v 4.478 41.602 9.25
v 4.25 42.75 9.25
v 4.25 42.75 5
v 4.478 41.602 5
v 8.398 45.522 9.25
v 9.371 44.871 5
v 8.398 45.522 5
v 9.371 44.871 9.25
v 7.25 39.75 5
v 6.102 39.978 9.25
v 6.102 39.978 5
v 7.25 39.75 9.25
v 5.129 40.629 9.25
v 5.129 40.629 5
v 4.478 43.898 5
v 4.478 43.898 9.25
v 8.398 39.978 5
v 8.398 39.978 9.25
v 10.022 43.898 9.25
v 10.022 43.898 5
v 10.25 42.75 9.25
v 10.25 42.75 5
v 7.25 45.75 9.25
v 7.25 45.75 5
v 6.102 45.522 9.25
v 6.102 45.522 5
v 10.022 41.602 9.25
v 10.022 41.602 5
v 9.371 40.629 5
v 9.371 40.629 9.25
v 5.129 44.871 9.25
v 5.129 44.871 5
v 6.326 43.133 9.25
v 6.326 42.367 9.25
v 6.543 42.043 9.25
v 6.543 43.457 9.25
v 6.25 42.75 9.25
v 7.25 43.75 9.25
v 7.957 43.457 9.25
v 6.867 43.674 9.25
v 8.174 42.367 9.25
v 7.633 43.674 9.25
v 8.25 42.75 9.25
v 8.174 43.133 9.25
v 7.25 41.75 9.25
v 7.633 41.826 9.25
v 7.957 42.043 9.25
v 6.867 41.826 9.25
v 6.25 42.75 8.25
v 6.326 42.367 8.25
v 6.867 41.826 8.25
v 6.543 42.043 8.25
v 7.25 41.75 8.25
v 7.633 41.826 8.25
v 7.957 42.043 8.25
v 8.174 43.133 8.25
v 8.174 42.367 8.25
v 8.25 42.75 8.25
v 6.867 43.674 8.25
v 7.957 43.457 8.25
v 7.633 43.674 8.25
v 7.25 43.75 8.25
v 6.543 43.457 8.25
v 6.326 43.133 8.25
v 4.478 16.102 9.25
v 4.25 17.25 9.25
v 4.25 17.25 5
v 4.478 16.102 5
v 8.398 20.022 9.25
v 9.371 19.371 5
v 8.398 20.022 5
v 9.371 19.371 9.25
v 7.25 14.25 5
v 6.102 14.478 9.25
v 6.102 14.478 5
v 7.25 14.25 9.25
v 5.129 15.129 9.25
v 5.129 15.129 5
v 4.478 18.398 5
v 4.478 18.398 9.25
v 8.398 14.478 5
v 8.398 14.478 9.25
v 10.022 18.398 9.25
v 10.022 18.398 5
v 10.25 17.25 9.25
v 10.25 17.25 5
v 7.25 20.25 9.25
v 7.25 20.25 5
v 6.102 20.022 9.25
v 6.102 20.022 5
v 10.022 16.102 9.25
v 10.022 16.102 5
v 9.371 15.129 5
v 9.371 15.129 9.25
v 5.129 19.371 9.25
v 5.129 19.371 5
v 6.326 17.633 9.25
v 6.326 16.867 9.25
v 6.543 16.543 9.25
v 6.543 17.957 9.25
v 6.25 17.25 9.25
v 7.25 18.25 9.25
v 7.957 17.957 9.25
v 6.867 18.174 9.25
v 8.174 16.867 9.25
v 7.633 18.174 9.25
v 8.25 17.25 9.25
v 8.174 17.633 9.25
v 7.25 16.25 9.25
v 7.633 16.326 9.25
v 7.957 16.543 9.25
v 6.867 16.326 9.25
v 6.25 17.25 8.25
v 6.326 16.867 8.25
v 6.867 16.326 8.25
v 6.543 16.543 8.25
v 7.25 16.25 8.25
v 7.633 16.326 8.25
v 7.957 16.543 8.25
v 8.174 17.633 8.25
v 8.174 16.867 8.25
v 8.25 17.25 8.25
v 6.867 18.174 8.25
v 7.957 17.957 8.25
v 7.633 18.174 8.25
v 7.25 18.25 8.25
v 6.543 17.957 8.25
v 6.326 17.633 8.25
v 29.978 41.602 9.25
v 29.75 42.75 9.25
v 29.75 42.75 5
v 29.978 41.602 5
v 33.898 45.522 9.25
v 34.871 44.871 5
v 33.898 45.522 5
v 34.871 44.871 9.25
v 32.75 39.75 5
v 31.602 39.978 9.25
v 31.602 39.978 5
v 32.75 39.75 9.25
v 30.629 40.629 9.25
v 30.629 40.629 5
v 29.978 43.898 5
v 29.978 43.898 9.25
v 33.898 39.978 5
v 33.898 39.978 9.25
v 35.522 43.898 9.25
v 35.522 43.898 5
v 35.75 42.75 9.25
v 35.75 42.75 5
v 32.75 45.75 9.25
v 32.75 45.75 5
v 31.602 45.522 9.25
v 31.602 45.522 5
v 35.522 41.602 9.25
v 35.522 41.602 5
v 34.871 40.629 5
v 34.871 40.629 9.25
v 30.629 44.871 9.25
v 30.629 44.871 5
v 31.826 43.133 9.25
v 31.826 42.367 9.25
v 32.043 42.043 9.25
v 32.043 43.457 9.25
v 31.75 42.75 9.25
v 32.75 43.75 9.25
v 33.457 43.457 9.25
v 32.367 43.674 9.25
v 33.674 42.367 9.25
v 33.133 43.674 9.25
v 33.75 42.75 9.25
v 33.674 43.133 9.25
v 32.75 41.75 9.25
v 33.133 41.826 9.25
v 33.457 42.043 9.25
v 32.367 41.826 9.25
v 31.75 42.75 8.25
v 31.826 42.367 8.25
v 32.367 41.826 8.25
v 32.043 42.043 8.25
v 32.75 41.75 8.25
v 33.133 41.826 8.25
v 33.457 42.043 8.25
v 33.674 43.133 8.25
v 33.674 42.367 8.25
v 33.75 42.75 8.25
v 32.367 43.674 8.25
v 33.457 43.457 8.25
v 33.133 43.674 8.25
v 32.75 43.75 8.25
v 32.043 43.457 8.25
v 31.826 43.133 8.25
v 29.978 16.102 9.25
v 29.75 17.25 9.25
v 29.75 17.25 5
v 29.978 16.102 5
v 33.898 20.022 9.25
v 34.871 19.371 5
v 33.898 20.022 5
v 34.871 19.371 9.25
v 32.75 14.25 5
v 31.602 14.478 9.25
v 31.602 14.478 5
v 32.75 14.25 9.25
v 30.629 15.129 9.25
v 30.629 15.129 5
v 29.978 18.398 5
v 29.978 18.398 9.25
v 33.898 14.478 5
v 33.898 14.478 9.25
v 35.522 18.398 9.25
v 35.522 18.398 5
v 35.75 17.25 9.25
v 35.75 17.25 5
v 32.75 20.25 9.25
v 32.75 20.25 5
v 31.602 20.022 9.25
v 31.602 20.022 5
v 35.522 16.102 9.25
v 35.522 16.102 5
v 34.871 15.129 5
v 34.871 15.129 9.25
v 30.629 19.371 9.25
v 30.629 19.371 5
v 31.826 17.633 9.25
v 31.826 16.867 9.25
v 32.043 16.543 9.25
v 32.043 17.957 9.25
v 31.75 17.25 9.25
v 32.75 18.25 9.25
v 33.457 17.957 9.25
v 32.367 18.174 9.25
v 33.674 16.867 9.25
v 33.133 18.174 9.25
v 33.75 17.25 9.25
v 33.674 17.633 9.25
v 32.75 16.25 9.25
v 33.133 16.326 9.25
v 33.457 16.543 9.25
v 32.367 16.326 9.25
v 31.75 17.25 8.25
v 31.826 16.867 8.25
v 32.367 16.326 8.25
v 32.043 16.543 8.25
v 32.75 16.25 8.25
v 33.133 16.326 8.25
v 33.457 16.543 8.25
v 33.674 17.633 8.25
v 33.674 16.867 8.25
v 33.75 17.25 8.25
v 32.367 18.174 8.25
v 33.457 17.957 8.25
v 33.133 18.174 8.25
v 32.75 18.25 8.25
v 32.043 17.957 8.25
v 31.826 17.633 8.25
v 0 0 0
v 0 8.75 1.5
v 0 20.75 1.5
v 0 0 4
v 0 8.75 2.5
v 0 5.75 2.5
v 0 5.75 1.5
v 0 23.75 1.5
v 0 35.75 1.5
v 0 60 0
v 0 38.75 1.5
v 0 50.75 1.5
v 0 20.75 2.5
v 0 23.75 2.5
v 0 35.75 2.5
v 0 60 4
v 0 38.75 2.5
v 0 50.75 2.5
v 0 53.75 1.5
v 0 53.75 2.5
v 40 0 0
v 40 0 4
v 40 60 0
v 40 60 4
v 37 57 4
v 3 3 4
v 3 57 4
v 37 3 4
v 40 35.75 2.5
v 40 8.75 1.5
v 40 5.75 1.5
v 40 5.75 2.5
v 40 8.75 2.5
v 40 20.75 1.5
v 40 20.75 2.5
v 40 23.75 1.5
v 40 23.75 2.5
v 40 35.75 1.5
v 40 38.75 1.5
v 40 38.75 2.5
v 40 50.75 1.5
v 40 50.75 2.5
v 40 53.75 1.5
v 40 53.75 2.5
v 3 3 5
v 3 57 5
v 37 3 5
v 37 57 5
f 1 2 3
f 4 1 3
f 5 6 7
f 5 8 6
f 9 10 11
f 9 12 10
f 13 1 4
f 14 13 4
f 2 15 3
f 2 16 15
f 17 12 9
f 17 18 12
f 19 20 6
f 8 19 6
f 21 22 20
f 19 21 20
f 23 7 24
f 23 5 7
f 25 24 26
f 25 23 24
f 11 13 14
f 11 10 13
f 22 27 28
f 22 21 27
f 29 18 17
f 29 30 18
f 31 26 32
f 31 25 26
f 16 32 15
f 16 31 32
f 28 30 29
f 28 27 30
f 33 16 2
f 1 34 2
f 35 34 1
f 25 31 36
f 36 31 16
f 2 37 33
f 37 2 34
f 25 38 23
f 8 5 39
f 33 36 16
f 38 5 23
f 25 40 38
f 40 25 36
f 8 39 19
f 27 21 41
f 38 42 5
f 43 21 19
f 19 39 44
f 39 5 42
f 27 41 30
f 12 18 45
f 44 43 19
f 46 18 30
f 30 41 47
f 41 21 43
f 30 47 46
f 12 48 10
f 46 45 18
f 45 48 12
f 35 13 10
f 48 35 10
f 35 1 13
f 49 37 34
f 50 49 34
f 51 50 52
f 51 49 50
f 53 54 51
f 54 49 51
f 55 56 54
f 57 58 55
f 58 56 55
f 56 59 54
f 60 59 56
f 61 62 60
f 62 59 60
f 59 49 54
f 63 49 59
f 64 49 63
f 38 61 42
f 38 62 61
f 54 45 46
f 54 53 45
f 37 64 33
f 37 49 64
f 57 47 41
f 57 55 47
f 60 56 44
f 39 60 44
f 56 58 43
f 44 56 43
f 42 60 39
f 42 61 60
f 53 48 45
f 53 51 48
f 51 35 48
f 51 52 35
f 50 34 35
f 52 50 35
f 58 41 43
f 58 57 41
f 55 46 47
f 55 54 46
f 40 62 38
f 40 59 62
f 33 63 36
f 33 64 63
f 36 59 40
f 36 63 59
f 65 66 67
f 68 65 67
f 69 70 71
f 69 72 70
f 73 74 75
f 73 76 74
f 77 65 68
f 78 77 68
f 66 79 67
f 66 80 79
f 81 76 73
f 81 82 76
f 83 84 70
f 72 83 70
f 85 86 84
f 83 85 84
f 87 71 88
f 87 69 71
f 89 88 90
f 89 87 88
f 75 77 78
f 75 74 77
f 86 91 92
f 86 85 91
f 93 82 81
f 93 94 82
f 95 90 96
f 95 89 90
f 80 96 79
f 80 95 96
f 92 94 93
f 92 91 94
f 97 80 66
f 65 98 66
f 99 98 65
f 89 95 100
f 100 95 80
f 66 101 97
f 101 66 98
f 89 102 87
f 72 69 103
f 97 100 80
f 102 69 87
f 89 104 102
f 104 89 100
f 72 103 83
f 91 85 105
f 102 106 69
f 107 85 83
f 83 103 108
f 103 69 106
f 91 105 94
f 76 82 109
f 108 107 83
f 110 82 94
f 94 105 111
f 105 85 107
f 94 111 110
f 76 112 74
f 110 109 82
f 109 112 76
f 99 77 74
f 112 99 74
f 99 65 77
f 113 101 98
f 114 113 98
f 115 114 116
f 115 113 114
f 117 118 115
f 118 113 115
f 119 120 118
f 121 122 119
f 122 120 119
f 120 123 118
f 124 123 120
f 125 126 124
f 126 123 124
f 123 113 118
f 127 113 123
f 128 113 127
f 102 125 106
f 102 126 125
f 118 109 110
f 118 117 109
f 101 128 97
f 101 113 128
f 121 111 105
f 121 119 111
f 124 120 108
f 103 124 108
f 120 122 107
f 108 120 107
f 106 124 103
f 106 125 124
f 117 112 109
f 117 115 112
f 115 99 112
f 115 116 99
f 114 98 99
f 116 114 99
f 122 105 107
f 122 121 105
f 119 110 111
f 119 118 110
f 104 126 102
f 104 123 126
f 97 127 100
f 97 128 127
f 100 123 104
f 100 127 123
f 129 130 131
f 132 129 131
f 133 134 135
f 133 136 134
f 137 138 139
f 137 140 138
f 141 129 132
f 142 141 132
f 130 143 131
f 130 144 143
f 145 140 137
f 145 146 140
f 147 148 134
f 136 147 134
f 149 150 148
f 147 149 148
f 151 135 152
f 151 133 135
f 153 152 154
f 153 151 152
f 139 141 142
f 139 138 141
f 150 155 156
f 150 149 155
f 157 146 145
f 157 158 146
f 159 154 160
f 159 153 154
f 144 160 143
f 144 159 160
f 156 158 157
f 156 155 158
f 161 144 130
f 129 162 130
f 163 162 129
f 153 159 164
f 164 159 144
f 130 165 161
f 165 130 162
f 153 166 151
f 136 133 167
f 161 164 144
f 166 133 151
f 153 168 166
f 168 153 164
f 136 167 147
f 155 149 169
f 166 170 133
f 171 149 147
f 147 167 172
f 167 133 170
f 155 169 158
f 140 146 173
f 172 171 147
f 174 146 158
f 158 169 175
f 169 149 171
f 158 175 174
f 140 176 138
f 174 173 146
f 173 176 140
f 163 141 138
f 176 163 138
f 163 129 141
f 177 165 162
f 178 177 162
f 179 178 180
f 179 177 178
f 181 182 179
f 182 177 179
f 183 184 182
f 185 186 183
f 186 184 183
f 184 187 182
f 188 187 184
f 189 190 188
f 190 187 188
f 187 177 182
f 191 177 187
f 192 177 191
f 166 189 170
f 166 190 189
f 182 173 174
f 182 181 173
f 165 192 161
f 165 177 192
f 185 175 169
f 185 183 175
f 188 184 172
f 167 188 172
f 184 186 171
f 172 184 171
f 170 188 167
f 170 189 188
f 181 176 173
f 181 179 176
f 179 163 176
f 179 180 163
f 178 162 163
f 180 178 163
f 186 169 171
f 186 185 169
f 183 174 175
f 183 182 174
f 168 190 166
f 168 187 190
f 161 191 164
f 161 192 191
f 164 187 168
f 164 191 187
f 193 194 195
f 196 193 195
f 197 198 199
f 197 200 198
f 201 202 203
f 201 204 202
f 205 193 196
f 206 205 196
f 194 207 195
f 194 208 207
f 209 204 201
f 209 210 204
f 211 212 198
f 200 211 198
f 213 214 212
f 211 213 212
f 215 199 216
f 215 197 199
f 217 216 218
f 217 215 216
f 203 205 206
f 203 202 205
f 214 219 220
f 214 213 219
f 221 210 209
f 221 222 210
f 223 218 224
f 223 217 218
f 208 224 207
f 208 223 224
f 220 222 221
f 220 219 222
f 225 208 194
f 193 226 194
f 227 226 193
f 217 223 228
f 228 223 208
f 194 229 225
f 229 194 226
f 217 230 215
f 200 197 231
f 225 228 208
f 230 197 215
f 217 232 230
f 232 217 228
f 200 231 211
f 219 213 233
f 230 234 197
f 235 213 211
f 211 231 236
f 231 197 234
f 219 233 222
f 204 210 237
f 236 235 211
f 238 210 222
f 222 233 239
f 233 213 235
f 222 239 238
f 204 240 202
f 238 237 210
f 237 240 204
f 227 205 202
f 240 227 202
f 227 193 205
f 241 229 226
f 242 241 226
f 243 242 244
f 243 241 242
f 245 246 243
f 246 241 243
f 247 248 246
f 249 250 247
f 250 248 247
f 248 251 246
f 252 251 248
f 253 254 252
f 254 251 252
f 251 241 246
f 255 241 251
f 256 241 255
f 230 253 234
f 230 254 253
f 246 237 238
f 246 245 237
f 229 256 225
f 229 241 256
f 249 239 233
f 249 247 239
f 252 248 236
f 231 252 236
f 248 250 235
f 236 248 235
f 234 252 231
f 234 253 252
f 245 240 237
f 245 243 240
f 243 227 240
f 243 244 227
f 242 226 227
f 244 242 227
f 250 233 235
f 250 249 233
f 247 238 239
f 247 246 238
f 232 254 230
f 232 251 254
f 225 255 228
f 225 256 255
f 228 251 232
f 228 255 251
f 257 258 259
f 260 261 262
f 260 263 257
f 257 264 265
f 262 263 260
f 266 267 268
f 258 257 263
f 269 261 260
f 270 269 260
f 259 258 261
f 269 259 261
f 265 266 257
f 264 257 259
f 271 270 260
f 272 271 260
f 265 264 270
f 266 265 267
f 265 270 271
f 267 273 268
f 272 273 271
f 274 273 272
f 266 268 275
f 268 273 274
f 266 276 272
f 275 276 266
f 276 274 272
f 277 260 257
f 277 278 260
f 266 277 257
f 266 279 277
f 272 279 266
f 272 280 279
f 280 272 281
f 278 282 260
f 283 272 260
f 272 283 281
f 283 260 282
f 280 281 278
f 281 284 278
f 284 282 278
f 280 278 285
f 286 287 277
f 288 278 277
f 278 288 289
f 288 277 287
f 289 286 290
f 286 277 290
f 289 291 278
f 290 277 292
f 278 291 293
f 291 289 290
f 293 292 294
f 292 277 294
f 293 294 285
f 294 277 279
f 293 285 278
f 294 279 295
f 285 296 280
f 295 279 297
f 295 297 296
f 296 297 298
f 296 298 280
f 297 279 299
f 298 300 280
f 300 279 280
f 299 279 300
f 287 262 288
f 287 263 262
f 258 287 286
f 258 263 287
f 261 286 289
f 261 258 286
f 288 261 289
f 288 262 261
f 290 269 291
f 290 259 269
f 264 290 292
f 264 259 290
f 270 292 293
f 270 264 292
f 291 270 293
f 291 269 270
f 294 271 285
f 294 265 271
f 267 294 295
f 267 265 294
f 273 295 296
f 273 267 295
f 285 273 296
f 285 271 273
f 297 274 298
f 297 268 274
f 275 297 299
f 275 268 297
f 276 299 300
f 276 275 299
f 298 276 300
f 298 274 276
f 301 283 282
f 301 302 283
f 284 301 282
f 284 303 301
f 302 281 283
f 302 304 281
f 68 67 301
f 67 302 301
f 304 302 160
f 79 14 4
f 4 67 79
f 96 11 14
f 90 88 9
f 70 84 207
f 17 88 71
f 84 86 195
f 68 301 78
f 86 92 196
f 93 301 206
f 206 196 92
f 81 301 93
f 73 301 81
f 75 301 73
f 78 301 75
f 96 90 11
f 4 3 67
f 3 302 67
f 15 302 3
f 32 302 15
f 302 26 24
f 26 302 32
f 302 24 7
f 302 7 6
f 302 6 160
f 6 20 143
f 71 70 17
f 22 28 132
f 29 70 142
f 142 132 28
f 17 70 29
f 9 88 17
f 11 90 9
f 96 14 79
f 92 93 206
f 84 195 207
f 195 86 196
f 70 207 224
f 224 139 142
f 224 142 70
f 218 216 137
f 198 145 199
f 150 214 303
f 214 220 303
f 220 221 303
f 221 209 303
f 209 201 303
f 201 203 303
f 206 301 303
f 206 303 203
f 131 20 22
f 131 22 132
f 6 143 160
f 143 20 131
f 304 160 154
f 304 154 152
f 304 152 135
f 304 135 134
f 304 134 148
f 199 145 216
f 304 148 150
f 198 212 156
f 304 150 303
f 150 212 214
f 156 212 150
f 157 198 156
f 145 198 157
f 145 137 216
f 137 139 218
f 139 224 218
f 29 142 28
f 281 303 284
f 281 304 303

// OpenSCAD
difference() {
    cube([40, 60, 4]);
    translate([-1, 5.75, 1.5]) {
        cube([42, 3, 1]);
    }
    translate([-1, 20.75, 1.5]) {
        cube([42, 3, 1]);
    }
    translate([-1, 35.75, 1.5]) {
        cube([42, 3, 1]);
    }
    translate([-1, 50.75, 1.5]) {
        cube([42, 3, 1]);
    }
}
translate([3, 3, 4]) {
    cube([34, 54, 1]);
}


translate([7.25, 42.75, 3]) {
    difference() {
        cylinder(h=6.25, d=6, $fn=16);
        translate([0, 0, 5.25]) {
            cylinder(h=2, d=2, $fn=16);
        }
    }
}

translate([7.25, 17.25, 3]) {
    difference() {
        cylinder(h=6.25, d=6, $fn=16);
        translate([0, 0, 5.25]) {
            cylinder(h=2, d=2, $fn=16);
        }
    }
}

translate([32.75, 42.75, 3]) {
    difference() {
        cylinder(h=6.25, d=6, $fn=16);
        translate([0, 0, 5.25]) {
            cylinder(h=2, d=2, $fn=16);
        }
    }
}

translate([32.75, 17.25, 3]) {
    difference() {
        cylinder(h=6.25, d=6, $fn=16);
        translate([0, 0, 5.25]) {
            cylinder(h=2, d=2, $fn=16);
        }
    }
}
